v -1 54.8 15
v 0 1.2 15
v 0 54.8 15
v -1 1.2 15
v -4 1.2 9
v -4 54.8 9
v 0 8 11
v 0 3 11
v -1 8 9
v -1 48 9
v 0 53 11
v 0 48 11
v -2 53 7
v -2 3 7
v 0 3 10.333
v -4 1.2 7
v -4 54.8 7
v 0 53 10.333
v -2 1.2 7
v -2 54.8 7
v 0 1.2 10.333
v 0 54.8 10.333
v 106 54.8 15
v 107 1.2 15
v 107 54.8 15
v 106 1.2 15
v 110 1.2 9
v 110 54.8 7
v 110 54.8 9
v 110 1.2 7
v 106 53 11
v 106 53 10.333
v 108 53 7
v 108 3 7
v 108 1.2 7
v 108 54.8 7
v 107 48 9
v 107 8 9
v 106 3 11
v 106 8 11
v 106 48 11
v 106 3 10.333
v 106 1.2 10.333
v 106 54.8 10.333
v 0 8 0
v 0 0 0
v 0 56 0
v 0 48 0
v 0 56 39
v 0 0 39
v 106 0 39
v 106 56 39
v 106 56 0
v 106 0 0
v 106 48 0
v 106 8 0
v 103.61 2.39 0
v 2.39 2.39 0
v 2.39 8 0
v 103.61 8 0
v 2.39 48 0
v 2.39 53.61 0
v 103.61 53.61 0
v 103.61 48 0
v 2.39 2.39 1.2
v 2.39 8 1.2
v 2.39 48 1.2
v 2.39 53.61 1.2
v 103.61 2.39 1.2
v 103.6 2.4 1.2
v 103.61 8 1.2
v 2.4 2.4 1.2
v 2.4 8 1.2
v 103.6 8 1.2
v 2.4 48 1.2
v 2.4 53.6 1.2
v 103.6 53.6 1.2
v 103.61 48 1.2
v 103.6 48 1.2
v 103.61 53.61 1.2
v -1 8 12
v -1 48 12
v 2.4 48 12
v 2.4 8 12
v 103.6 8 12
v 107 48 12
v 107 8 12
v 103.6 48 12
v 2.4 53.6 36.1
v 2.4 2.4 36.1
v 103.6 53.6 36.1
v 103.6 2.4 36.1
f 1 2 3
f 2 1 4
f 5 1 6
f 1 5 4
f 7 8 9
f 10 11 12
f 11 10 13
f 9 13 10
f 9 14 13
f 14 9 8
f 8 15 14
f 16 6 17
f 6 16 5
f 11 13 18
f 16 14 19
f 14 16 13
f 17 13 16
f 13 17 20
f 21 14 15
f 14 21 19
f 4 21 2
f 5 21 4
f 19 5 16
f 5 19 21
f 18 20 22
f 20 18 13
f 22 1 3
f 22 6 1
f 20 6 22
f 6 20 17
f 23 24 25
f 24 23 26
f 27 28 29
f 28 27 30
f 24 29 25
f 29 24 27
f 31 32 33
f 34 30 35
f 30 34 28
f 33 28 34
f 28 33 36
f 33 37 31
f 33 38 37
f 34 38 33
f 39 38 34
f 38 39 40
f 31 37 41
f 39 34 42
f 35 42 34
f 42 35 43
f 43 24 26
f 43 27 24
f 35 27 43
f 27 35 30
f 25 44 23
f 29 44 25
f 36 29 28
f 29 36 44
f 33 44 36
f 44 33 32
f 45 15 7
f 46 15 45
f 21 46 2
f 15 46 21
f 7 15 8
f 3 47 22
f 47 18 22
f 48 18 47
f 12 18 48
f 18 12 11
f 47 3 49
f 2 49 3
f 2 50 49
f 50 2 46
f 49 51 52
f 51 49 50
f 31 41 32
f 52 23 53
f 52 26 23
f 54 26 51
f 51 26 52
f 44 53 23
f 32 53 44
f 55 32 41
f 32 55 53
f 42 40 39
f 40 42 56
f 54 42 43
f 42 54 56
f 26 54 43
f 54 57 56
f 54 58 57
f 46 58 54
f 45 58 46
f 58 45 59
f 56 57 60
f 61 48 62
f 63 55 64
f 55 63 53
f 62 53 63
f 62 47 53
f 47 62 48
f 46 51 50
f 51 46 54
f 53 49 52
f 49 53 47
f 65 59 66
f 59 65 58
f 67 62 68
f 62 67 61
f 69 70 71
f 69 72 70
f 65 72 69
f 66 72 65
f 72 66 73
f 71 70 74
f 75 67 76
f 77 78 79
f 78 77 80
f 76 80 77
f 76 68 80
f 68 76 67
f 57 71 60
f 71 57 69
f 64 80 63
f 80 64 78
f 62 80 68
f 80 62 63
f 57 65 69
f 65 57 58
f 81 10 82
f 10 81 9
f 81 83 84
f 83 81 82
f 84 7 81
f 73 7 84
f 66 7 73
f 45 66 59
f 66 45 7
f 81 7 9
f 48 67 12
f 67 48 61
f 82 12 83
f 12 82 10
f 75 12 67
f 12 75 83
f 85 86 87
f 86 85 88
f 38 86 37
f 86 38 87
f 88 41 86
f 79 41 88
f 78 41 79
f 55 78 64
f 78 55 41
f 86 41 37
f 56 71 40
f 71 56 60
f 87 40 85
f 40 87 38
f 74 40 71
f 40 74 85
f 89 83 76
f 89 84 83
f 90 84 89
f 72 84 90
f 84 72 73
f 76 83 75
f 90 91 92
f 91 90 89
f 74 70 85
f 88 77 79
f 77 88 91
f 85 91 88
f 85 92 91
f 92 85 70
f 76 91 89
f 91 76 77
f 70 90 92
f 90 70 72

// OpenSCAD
// OpenSCAD 2021.01 compatible
// Power-distributor carrier cover.
//
// Matching dimensions for power_distributor_carrier_base.scad.
// The cover is an open-bottom shell sized to land on the 3 mm cover-rest shelf.
// This revision places two equally sized rain roofs on the left and right sides
// of the cover, i.e. on the -X and +X walls.

$fn = 72;

// -----------------------------
// Finished power-distributor board envelope
// -----------------------------
board_length = 90.0;   // X direction
board_width  = 40.0;   // Y direction
board_height = 35.0;   // Z direction; internal board height to cover

// -----------------------------
// Matching base/rim dimensions
// -----------------------------
board_margin         = 5.0;
cover_rest_width     = 3.0;   // documented here to keep the base/cover design tied together

rim_outer_length = board_length + 2 * board_margin;
rim_outer_width  = board_width  + 2 * board_margin;

// -----------------------------
// Cover parameters
// -----------------------------
fit_clearance          = 0.6;
wall_thickness         = 2.4;   // sized so the cover lands on the 3 mm rest shelf
cover_top_thickness    = 3.0;
cover_height_clearance = 1.0;
cover_inside_height    = board_height + cover_height_clearance;

// -----------------------------
// Equal left/right cable openings and rain roofs
// -----------------------------
// The slots are centered along Y on both X-side walls.  Both roofs use exactly
// the same dimensions so the left and right cover sides are symmetrical.
side_slots_enabled     = true;
side_slot_width        = 40.0;  // opening length along Y on each side wall
side_slot_top_z        = 12.0;
roof_clearance         = 1.0;
roof_projection        = 3.0;
roof_drop              = 6.0;
roof_thickness         = 2.0;
roof_side_margin       = 5.0;
roof_cheek_thickness   = 1.8;
bottom_chamfer_h       = 1.2;
bottom_chamfer_in      = 0.7;

// -----------------------------
// Derived cover dimensions
// -----------------------------
cover_inner_length = rim_outer_length + 2 * fit_clearance;
cover_inner_width  = rim_outer_width  + 2 * fit_clearance;
cover_outer_length = cover_inner_length + 2 * wall_thickness;
cover_outer_width  = cover_inner_width  + 2 * wall_thickness;
cover_outer_height = cover_inside_height + cover_top_thickness;

side_slot_center_y = cover_outer_width / 2;
side_slot_y0       = side_slot_center_y - side_slot_width / 2;
side_slot_y1       = side_slot_center_y + side_slot_width / 2;

side_roof_y0       = side_slot_y0 - roof_side_margin;
side_roof_y1       = side_slot_y1 + roof_side_margin;
side_roof_width    = side_roof_y1 - side_roof_y0;
side_roof_back_z   = side_slot_top_z + roof_clearance;
side_roof_front_z  = side_roof_back_z - roof_drop;

// -----------------------------
// Cover shell geometry
// -----------------------------
module cover_outer_shell() {
    cube([cover_outer_length, cover_outer_width, cover_outer_height]);
}

module cover_inner_cavity() {
    translate([wall_thickness, wall_thickness, 0])
        cube([cover_inner_length, cover_inner_width, cover_inside_height + 0.1]);
}

module cover_bottom_softening_cut() {
    if (bottom_chamfer_h > 0 && bottom_chamfer_in > 0) {
        translate([wall_thickness - 0.01, wall_thickness - 0.01, 0])
            difference() {
                cube([cover_inner_length + 0.02, cover_inner_width + 0.02, bottom_chamfer_h]);
                translate([bottom_chamfer_in, bottom_chamfer_in, -0.01])
                    cube([
                        cover_inner_length - 2 * bottom_chamfer_in + 0.02,
                        cover_inner_width  - 2 * bottom_chamfer_in + 0.02,
                        bottom_chamfer_h + 0.02
                    ]);
            }
    }
}

// -----------------------------
// Left/right slot cutouts
// -----------------------------
module cover_slot_cutout_left(center_y, width, top_z) {
    if (side_slots_enabled)
        translate([-1, center_y - width / 2, 0])
            cube([wall_thickness + 2, width, top_z]);
}

module cover_slot_cutout_right(center_y, width, top_z) {
    if (side_slots_enabled)
        translate([cover_outer_length - wall_thickness - 1, center_y - width / 2, 0])
            cube([wall_thickness + 2, width, top_z]);
}

// -----------------------------
// Left-side rain roof and cheeks, on -X wall
// -----------------------------
module rain_roof_left(y0, width, back_z, front_z) {
    hull() {
        translate([-roof_thickness / 2, y0, back_z])
            cube([roof_thickness, width, roof_thickness]);
        translate([-roof_projection - roof_thickness / 2, y0, front_z])
            cube([roof_thickness, width, roof_thickness]);
    }
}

module rain_cheek_left_lower_y(y0, slot_top, back_z, front_z) {
    hull() {
        translate([-roof_thickness / 2, y0 - roof_cheek_thickness, slot_top])
            cube([roof_thickness, roof_cheek_thickness, back_z + roof_thickness - slot_top]);
        translate([-roof_projection - roof_thickness / 2, y0 - roof_cheek_thickness, front_z])
            cube([roof_thickness, roof_cheek_thickness, roof_thickness]);
    }
}

module rain_cheek_left_upper_y(y1, slot_top, back_z, front_z) {
    hull() {
        translate([-roof_thickness / 2, y1, slot_top])
            cube([roof_thickness, roof_cheek_thickness, back_z + roof_thickness - slot_top]);
        translate([-roof_projection - roof_thickness / 2, y1, front_z])
            cube([roof_thickness, roof_cheek_thickness, roof_thickness]);
    }
}

// -----------------------------
// Right-side rain roof and cheeks, on +X wall
// -----------------------------
module rain_roof_right(y0, width, back_z, front_z) {
    hull() {
        translate([cover_outer_length - roof_thickness / 2, y0, back_z])
            cube([roof_thickness, width, roof_thickness]);
        translate([cover_outer_length + roof_projection - roof_thickness / 2, y0, front_z])
            cube([roof_thickness, width, roof_thickness]);
    }
}

module rain_cheek_right_lower_y(y0, slot_top, back_z, front_z) {
    hull() {
        translate([cover_outer_length - roof_thickness / 2, y0 - roof_cheek_thickness, slot_top])
            cube([roof_thickness, roof_cheek_thickness, back_z + roof_thickness - slot_top]);
        translate([cover_outer_length + roof_projection - roof_thickness / 2, y0 - roof_cheek_thickness, front_z])
            cube([roof_thickness, roof_cheek_thickness, roof_thickness]);
    }
}

module rain_cheek_right_upper_y(y1, slot_top, back_z, front_z) {
    hull() {
        translate([cover_outer_length - roof_thickness / 2, y1, slot_top])
            cube([roof_thickness, roof_cheek_thickness, back_z + roof_thickness - slot_top]);
        translate([cover_outer_length + roof_projection - roof_thickness / 2, y1, front_z])
            cube([roof_thickness, roof_cheek_thickness, roof_thickness]);
    }
}

module equal_left_right_roofs_and_cheeks() {
    if (side_slots_enabled) {
        rain_roof_left(side_roof_y0, side_roof_width, side_roof_back_z, side_roof_front_z);
        rain_cheek_left_lower_y(side_roof_y0, side_slot_top_z, side_roof_back_z, side_roof_front_z);
        rain_cheek_left_upper_y(side_roof_y1, side_slot_top_z, side_roof_back_z, side_roof_front_z);

        rain_roof_right(side_roof_y0, side_roof_width, side_roof_back_z, side_roof_front_z);
        rain_cheek_right_lower_y(side_roof_y0, side_slot_top_z, side_roof_back_z, side_roof_front_z);
        rain_cheek_right_upper_y(side_roof_y1, side_slot_top_z, side_roof_back_z, side_roof_front_z);
    }
}

module equal_left_right_slot_cutouts() {
    cover_slot_cutout_left(side_slot_center_y, side_slot_width, side_slot_top_z);
    cover_slot_cutout_right(side_slot_center_y, side_slot_width, side_slot_top_z);
}

module power_distributor_carrier_cover() {
    difference() {
        union() {
            cover_outer_shell();
            equal_left_right_roofs_and_cheeks();
        }
        cover_inner_cavity();
        cover_bottom_softening_cut();
        equal_left_right_slot_cutouts();
    }
}

power_distributor_carrier_cover();
